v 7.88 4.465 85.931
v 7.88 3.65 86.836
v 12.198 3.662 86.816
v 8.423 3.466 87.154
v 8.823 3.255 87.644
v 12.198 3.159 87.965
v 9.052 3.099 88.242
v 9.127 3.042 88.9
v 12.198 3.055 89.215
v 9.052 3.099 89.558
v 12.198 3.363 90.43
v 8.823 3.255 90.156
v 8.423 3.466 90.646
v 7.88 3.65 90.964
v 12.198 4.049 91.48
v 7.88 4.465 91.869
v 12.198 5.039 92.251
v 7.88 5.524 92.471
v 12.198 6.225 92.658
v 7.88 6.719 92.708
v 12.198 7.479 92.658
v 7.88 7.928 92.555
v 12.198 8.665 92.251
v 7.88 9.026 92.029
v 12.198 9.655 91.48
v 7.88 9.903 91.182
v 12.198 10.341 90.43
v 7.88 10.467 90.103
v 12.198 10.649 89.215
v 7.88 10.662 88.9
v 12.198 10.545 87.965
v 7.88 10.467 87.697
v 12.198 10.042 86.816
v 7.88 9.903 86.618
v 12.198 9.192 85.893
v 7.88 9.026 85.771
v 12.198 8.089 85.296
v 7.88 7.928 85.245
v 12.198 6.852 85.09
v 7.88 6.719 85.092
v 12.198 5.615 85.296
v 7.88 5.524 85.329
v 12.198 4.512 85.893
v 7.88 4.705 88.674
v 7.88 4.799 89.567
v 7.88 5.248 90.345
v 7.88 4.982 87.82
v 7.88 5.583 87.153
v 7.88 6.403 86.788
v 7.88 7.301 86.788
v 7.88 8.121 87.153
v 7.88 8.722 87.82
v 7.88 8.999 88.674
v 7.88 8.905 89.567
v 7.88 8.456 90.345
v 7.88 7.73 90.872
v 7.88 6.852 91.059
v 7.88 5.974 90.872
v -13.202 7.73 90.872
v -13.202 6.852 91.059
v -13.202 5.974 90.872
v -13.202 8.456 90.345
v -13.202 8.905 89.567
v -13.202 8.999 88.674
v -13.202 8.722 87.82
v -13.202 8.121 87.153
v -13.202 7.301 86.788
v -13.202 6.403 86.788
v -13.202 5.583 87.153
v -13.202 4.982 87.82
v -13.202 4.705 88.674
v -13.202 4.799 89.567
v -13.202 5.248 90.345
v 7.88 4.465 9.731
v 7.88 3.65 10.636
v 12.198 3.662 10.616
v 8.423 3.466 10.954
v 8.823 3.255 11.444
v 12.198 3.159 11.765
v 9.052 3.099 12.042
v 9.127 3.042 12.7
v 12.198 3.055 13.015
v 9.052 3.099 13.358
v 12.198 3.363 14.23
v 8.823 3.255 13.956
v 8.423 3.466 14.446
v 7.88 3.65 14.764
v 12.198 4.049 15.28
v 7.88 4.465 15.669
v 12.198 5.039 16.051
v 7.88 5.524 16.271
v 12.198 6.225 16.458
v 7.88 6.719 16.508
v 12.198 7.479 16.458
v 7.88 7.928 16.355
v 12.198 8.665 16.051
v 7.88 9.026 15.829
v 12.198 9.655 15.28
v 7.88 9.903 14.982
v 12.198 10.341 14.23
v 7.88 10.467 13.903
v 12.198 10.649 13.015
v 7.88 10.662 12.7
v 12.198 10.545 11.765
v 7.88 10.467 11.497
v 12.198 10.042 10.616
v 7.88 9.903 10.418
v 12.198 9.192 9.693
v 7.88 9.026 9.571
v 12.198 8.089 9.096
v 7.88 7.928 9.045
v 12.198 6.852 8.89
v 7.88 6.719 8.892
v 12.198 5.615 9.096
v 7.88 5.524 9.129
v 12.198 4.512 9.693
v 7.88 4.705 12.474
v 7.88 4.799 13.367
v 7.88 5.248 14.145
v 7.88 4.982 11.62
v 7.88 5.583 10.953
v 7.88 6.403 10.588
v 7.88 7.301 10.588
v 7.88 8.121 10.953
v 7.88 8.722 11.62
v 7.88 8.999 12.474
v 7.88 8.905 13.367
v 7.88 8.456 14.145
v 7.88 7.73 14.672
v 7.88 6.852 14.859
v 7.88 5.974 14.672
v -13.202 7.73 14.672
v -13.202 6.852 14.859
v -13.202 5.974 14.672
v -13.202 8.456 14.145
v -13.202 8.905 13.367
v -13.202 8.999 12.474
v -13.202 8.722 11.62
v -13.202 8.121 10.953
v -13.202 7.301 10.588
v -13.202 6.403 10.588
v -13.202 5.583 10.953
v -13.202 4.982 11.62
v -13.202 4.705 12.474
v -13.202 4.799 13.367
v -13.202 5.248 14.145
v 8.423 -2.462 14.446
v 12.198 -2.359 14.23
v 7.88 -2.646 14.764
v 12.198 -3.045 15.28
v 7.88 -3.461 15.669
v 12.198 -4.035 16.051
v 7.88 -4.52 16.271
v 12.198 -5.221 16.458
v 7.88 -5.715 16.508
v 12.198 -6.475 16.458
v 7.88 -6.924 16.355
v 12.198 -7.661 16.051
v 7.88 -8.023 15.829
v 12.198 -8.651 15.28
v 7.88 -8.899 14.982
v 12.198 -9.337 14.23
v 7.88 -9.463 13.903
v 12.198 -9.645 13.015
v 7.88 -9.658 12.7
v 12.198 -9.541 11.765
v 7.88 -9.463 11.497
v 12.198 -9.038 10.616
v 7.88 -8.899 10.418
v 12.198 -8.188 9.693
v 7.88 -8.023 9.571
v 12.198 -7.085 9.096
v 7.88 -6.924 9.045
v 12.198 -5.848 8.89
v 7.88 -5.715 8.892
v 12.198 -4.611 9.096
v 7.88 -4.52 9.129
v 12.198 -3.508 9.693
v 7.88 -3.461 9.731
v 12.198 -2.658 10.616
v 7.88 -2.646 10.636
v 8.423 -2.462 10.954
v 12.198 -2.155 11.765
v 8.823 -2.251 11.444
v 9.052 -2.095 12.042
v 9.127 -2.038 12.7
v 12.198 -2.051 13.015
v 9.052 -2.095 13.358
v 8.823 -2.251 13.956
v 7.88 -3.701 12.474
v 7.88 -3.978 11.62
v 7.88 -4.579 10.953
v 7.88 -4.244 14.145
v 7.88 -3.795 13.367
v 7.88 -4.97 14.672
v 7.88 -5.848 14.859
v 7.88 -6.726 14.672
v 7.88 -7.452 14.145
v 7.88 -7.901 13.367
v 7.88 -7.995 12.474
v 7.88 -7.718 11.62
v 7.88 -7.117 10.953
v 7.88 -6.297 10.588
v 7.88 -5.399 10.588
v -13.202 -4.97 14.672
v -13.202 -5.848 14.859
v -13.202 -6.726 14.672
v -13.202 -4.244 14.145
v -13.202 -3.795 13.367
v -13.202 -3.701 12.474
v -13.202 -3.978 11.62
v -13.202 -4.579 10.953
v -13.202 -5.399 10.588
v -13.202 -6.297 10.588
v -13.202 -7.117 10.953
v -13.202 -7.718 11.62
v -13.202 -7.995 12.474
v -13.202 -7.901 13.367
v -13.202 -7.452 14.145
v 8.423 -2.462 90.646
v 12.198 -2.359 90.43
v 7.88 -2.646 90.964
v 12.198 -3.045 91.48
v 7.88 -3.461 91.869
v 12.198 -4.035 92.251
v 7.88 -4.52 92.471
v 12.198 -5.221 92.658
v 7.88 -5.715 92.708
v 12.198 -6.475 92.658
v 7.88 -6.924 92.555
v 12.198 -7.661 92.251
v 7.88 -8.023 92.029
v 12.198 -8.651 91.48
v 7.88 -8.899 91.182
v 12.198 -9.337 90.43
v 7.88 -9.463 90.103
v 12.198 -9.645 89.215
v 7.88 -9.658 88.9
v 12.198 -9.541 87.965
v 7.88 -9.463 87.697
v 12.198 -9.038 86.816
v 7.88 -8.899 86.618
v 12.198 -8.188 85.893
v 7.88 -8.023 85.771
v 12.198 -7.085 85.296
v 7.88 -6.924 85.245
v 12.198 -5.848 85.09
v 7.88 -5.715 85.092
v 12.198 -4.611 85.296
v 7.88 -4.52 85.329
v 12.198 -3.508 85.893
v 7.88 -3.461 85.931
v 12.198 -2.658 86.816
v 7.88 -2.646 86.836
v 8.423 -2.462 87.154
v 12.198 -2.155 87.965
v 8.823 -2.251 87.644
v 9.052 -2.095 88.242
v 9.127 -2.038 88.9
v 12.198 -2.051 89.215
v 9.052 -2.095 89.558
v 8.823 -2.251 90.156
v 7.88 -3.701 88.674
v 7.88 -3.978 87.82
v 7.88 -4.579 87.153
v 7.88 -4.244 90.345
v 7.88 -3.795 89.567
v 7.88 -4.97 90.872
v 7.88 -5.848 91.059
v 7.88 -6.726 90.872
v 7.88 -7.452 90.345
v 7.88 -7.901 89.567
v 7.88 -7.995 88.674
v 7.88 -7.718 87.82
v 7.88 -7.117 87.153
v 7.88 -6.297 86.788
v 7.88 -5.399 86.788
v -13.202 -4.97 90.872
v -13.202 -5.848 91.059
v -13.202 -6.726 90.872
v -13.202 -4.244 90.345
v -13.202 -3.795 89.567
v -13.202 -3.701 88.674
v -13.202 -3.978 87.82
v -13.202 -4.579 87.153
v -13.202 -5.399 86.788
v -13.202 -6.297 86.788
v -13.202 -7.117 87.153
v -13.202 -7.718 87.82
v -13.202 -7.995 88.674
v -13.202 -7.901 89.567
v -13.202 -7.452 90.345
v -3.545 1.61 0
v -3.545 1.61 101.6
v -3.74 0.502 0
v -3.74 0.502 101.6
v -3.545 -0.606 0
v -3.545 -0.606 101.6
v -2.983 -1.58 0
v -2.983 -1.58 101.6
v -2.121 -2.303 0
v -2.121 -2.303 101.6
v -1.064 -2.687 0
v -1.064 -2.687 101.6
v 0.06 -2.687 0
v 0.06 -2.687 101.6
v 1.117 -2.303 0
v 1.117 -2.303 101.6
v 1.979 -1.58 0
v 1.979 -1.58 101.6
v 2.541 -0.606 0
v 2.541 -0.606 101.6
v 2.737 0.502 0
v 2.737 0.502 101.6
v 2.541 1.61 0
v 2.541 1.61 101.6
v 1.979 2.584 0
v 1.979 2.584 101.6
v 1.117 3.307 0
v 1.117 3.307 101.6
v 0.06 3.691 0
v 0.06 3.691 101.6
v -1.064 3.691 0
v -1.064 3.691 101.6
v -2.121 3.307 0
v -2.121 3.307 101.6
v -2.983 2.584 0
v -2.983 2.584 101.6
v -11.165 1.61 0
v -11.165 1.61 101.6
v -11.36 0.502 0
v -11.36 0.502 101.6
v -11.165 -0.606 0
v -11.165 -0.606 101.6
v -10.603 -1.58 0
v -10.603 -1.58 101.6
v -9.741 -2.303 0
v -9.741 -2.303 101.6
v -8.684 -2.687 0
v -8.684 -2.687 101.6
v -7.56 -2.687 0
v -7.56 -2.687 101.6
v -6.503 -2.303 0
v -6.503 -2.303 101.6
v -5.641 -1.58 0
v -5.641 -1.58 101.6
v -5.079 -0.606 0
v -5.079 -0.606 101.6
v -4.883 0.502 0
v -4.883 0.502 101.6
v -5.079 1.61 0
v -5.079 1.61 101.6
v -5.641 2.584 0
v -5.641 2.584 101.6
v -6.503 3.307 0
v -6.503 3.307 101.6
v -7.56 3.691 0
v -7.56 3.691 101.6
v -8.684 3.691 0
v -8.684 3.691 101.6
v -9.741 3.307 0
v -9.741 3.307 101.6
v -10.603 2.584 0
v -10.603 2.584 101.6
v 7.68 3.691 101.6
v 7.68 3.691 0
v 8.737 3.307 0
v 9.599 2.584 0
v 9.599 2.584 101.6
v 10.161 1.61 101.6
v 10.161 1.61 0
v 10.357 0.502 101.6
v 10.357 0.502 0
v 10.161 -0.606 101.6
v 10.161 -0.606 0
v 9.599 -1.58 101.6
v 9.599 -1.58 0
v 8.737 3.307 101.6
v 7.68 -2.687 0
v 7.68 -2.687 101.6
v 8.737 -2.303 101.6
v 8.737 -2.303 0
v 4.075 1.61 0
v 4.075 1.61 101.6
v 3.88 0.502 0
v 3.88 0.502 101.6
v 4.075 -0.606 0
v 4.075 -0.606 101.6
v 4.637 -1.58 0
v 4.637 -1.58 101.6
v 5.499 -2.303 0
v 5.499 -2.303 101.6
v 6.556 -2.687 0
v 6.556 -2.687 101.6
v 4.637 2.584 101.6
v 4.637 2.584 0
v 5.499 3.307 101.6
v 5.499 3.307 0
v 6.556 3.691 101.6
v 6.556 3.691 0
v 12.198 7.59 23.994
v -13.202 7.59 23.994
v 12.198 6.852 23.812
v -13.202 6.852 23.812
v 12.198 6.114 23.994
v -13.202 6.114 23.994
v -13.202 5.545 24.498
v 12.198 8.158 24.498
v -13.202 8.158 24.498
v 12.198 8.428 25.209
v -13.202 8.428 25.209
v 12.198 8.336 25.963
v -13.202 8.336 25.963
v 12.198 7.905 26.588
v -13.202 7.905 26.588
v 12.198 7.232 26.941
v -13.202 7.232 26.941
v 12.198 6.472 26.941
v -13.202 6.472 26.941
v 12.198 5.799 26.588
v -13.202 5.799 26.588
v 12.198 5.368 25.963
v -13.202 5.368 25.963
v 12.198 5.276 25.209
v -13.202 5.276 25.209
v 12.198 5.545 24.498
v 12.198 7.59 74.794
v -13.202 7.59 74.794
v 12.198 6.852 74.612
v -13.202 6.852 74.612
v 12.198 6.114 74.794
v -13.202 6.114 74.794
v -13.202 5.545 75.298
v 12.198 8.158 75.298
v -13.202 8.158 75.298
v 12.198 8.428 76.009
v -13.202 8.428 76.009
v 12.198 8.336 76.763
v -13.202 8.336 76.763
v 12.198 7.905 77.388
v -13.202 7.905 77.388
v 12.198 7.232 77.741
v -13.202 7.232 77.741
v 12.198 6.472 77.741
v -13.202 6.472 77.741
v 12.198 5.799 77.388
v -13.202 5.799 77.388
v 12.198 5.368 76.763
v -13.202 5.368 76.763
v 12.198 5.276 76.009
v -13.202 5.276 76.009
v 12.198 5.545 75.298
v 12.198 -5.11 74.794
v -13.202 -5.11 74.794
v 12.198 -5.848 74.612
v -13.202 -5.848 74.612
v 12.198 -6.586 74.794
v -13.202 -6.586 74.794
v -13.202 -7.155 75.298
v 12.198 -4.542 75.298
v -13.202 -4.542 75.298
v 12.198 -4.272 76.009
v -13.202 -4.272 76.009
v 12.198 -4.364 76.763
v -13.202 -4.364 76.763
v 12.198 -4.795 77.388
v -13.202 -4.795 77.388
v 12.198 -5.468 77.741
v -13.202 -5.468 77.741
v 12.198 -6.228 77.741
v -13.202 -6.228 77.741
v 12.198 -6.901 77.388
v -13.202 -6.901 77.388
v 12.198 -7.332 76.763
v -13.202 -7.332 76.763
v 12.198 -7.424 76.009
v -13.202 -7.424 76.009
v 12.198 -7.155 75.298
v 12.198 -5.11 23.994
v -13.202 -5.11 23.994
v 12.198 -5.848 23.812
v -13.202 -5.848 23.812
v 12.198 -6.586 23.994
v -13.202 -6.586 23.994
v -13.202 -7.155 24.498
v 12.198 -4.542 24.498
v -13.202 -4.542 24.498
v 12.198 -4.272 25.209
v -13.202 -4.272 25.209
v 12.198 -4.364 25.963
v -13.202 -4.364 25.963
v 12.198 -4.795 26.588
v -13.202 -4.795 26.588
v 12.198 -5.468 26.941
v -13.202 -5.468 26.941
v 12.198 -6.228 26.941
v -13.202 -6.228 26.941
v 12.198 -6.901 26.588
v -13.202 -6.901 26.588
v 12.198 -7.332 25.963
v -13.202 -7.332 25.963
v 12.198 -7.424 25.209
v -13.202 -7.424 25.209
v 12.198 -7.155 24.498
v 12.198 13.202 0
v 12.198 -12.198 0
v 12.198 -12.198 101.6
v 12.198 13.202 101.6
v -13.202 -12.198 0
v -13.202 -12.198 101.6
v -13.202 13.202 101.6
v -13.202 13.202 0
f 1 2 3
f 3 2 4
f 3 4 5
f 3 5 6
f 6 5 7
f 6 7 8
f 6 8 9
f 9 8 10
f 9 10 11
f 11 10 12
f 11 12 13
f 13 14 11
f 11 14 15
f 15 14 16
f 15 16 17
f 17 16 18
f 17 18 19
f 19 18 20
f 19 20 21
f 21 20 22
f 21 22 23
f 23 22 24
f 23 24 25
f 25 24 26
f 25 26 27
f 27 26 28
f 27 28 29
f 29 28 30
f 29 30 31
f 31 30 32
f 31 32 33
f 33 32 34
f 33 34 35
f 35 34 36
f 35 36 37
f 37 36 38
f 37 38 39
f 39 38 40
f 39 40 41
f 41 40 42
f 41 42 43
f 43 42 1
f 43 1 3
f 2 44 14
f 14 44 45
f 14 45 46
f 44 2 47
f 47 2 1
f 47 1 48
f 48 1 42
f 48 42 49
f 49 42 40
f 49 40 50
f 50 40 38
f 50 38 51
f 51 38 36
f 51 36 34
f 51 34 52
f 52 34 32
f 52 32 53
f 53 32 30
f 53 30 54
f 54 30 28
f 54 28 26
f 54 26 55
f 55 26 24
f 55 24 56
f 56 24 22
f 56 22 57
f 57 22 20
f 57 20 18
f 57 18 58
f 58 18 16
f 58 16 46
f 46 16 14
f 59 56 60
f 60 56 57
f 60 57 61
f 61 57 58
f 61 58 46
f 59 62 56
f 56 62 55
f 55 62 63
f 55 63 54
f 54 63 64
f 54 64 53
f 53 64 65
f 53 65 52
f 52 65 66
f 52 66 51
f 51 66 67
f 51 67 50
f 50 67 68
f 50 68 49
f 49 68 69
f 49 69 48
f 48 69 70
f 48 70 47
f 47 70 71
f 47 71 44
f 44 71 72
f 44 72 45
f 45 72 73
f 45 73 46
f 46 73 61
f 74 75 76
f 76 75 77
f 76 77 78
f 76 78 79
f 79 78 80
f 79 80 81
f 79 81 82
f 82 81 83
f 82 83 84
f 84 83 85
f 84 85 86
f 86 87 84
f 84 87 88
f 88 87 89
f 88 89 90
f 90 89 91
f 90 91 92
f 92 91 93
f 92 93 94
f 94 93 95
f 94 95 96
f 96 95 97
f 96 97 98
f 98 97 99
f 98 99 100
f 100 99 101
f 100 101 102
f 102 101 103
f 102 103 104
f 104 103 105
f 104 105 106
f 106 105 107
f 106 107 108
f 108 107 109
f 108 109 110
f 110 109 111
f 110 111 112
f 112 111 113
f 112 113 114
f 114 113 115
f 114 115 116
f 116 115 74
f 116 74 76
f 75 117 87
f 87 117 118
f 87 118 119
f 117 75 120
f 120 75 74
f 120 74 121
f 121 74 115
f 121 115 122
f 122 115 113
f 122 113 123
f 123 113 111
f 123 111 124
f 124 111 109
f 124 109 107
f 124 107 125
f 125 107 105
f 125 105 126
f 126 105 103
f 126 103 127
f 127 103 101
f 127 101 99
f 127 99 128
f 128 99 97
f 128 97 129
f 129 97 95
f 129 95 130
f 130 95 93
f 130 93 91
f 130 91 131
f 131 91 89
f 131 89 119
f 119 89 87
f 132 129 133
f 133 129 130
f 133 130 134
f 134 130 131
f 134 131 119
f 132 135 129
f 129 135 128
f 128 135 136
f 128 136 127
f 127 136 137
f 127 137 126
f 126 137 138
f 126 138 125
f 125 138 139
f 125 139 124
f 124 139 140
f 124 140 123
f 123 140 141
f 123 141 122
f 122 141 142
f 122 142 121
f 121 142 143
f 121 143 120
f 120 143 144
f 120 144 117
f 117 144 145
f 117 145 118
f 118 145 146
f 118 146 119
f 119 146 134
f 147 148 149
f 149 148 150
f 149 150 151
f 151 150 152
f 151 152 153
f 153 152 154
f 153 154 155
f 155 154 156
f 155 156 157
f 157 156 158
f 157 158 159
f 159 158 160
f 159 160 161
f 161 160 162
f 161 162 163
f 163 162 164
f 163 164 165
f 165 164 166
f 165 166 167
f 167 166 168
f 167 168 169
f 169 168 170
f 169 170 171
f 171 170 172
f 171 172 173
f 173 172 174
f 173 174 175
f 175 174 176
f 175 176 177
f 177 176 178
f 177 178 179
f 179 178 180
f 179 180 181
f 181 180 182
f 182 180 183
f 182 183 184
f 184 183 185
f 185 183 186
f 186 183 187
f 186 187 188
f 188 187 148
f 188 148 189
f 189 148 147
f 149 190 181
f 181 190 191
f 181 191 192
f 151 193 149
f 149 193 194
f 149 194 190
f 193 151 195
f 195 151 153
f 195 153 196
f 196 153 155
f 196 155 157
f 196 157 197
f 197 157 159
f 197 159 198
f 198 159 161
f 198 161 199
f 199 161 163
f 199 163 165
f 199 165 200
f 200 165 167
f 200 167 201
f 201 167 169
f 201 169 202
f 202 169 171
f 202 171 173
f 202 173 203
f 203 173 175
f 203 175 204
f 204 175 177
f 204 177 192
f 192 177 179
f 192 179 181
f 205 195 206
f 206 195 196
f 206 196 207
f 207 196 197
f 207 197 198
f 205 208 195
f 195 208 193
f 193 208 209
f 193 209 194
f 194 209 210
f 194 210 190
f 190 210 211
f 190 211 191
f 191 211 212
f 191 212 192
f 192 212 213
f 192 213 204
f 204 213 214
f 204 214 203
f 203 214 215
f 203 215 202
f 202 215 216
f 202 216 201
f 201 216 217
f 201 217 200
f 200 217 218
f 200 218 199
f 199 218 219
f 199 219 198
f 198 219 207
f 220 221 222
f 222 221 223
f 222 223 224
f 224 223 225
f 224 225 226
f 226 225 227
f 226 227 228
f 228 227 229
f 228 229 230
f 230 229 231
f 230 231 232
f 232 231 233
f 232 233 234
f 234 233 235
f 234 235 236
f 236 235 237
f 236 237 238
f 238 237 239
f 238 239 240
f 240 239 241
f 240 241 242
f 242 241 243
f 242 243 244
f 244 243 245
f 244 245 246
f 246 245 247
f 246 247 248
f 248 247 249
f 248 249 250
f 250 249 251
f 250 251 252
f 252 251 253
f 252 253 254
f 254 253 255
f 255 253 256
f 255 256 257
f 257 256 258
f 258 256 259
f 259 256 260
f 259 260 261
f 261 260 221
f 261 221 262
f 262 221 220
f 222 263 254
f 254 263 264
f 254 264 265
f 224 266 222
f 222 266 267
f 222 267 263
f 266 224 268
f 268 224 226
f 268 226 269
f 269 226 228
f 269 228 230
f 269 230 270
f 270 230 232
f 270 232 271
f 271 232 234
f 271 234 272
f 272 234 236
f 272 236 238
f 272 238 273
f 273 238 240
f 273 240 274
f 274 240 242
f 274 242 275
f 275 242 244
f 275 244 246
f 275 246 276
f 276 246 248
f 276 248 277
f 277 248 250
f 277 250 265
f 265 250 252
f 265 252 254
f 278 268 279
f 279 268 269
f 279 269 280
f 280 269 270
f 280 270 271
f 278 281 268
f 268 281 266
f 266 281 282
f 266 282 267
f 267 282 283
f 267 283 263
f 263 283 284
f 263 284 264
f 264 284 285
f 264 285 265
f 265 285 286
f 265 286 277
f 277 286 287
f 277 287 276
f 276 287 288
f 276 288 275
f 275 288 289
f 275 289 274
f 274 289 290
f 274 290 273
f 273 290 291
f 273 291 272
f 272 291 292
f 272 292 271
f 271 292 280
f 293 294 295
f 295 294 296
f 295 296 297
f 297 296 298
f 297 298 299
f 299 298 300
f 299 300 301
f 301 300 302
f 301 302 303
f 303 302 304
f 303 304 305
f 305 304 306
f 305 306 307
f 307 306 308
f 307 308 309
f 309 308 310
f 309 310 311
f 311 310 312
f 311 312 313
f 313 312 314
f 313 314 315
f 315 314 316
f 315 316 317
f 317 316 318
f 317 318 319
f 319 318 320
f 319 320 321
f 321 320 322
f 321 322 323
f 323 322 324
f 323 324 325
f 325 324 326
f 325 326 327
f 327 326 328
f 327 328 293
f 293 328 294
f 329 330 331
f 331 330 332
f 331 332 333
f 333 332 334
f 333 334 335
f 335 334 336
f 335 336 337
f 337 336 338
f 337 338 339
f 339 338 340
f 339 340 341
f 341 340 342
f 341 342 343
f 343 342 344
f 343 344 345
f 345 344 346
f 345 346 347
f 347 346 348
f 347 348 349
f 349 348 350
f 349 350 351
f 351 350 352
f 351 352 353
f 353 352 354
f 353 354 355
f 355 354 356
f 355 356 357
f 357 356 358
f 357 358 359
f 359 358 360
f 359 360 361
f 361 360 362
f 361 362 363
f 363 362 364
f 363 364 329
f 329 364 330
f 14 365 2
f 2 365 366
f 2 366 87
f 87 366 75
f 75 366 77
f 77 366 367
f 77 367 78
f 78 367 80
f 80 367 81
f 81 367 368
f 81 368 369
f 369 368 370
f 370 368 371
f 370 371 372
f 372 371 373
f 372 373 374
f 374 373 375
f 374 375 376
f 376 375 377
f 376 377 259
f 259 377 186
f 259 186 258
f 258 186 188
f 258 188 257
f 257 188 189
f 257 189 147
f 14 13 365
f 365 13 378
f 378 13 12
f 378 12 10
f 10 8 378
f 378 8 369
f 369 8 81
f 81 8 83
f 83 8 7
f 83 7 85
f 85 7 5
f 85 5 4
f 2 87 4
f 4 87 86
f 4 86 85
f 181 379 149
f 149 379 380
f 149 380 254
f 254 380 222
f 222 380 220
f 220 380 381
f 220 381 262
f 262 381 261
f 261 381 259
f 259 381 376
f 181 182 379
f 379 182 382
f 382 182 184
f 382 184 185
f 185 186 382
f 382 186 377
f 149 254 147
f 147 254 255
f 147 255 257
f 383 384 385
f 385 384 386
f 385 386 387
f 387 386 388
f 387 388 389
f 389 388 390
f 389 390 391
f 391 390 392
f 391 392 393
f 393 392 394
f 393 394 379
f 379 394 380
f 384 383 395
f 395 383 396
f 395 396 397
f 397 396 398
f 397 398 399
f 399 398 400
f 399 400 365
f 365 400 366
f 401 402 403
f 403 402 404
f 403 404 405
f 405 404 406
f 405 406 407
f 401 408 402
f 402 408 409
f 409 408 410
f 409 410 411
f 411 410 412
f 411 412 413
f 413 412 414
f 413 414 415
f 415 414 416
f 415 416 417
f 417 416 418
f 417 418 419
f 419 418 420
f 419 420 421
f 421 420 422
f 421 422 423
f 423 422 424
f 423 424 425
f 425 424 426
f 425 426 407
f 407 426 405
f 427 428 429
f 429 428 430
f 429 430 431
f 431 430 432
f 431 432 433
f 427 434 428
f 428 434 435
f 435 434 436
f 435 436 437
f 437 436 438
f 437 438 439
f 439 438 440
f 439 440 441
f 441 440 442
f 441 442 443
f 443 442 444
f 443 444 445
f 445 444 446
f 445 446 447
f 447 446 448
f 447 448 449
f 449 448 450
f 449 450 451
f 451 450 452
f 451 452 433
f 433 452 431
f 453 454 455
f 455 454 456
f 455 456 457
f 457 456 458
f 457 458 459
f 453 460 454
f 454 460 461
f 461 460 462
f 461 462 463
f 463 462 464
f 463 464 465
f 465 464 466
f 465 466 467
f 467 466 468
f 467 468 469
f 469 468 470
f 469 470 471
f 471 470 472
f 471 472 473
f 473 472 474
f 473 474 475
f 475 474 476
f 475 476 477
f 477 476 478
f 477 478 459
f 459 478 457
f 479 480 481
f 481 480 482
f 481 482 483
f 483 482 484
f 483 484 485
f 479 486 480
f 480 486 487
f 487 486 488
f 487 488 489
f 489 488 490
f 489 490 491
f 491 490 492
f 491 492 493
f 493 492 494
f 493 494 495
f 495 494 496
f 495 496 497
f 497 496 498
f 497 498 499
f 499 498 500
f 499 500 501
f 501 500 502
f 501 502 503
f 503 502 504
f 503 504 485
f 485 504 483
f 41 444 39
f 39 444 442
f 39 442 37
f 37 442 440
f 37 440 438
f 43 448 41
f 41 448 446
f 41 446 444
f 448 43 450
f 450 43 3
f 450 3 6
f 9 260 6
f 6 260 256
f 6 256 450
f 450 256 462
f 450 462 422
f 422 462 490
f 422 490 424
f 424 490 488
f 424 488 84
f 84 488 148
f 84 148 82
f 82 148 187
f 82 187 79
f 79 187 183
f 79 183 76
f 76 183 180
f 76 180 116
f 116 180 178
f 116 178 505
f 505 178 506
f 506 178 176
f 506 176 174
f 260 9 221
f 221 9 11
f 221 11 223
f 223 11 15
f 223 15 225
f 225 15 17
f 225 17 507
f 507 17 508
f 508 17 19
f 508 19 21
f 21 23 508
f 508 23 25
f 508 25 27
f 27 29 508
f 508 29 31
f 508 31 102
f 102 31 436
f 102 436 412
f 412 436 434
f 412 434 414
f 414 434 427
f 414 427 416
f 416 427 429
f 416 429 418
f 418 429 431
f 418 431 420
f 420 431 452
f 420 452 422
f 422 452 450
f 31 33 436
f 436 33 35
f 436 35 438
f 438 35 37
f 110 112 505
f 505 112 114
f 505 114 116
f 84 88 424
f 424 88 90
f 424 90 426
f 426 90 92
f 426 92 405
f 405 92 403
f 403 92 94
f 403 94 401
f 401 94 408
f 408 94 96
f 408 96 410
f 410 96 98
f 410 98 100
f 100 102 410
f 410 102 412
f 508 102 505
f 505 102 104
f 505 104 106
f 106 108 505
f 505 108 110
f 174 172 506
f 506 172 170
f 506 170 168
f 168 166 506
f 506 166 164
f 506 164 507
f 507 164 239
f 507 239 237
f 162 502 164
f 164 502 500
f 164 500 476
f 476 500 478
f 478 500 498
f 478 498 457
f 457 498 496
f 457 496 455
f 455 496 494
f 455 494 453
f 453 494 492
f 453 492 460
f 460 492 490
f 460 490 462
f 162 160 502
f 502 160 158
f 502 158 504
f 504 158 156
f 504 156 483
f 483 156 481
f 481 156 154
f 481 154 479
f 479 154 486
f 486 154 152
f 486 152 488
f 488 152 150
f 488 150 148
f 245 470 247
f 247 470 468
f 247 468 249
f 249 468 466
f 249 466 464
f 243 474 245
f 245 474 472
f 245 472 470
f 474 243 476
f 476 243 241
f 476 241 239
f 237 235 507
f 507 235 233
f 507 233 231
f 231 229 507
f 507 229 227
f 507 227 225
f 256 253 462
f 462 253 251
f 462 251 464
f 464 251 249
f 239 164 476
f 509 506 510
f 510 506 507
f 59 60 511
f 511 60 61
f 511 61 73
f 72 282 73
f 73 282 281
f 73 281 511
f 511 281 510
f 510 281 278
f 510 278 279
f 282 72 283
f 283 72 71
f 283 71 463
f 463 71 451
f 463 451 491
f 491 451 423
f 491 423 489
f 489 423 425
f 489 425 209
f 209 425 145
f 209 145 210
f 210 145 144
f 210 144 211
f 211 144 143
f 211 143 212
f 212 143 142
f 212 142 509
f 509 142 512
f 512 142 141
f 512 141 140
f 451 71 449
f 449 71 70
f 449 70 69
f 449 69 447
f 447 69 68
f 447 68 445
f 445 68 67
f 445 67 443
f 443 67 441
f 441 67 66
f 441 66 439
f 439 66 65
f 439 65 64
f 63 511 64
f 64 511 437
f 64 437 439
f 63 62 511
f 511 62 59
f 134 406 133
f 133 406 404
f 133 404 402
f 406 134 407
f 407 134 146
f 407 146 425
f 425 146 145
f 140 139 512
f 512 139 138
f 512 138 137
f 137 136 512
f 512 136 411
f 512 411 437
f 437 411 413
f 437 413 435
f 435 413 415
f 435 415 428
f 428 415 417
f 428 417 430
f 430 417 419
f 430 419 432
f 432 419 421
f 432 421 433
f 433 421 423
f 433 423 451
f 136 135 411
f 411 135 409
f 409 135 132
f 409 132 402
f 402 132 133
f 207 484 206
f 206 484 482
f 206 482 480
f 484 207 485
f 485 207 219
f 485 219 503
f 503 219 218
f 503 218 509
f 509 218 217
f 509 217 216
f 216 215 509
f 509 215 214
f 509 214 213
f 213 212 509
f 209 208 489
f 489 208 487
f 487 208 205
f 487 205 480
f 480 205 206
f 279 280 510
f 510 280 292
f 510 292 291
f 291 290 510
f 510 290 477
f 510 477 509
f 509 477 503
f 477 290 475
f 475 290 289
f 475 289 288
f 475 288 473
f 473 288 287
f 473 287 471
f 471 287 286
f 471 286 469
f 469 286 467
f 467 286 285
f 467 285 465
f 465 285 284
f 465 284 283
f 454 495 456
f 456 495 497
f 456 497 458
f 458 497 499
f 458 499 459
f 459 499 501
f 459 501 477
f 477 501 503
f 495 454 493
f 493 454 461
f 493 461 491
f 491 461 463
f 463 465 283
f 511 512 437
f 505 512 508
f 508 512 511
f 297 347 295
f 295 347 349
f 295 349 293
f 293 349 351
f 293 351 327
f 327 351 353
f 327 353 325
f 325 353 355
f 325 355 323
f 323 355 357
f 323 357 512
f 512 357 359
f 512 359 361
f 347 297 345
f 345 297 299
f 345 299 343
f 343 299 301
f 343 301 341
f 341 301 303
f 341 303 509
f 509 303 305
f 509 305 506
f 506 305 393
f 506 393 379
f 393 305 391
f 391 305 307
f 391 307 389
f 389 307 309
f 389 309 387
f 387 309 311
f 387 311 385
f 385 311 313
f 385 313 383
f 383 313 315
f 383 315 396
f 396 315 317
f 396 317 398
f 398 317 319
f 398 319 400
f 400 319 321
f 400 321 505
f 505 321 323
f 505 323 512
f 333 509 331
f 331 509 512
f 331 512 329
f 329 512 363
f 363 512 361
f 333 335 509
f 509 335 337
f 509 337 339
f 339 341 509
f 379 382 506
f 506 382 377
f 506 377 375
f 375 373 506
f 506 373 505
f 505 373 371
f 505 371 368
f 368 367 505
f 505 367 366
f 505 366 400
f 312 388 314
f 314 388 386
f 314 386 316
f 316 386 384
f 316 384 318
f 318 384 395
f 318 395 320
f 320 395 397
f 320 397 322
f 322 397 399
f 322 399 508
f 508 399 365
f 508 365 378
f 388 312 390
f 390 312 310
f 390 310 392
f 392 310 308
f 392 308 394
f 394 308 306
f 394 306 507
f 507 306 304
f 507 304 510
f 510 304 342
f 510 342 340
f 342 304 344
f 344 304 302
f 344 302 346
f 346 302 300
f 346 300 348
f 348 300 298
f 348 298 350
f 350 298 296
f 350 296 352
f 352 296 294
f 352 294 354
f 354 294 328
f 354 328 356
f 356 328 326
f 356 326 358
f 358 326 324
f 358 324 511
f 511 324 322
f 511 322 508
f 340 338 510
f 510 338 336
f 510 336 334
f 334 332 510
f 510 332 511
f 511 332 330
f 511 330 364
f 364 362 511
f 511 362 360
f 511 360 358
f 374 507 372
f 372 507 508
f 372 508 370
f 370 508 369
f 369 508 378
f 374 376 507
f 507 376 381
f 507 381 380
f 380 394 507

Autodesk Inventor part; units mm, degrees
ref_plane "YZ Plane" through (0, 0, 0) normal (1, 0, 0) x (0, 1, 0)
ref_plane "XZ Plane" through (0, 0, 0) normal (0, 1, 0) x (-1, 0, 0)
ref_plane "XY Plane" through (0, 0, 0) normal (0, 0, 1) x (1, 0, 0)
sketch "Sketch1" plane through (0, 0, 0) normal (0, 0, 1) x (1, 0, 0)
  line L0 (-13.202, 13.202) -> (12.198, 13.202)
  line L1 (12.198, 13.202) -> (12.198, -12.198)
  line L2 (12.198, -12.198) -> (-13.202, -12.198)
  line L3 (-13.202, -12.198) -> (-13.202, 13.202)
  point P0 (0, 0)
  dimension "d0" = 25.4
  dimension "d1" = 25.4
extrude "Extrusion1" add sketch "Sketch1" along normal blind 101.6
sketch "Sketch6" plane through (12.198, 13.202, 101.6) normal (1, 0, 0) x (0, 0, -1)
  line L0 (101.6, 0) -> (101.6, -25.4) projected
  line L1 (101.6, -25.4) -> (0, -25.4) projected
  line L2 (101.6, 0) -> (101.6, -25.4) projected
  line L3 (101.6, 0) -> (0, 0) projected
  line L4 (0, -25.4) -> (0, 0) projected
  line L5 (0, -25.4) -> (0, 0) projected
  point P0 (101.6, -13.202)
  point P1 (88.9, -6.35)
  point P2 (88.9, -19.05)
  point P3 (101.6, -19.05)
  point P4 (101.6, -6.35)
  point P5 (12.7, -6.35)
  point P6 (12.7, -19.05)
  point P7 (0, -19.05)
  point P8 (0, -6.35)
  dimension "d51" = 12.7
  dimension "d52" = 6.35
  dimension "d53" = 12.7
  dimension "d54" = 6.35
  dimension "d55" = 12.7
  dimension "d56" = 6.35
  dimension "d57" = 12.7
  dimension "d58" = 6.35
sketch "Sketch7" plane through (12.198, 13.202, 101.6) normal (1, 0, 0) x (0, 0, -1)
  line L0 (0, -25.4) -> (0, 0) projected
  line L1 (101.6, 0) -> (0, 0) projected
  point P0 (101.6, -13.202)
  point P1 (25.4, -6.35)
  point P2 (25.4, -19.05)
  point P3 (76.2, -6.35)
  point P4 (76.2, -19.05)
  point P5 (0, -6.35)
  dimension "d66" = 0
  dimension "d67" = 0
  dimension "d68" = 0
  dimension "d69" = 0
  dimension "d70" = 25.4
  dimension "d71" = 6.35
  dimension "d72" = 19.05
  dimension "d73" = 76.2
hole "Hole3" at (12.198, 6.852, 76.2) at (12.198, -5.848, 76.2) at (12.198, 6.852, 25.4) at (12.198, -5.848, 25.4) direction (-1, 0, 0) diameter 3.175 depth 25.4 tip angle 118.188
sketch "Sketch8" plane through (0, 0, 101.6) normal (0, 0, 1) x (1, 0, 0)
  line L0 (-13.202, 13.202) -> (-13.202, -12.198) projected
  line L1 (-13.202, -12.198) -> (12.198, -12.198) projected
  point P0 (0, 0)
  point P1 (-8.122, 0.502)
  point P2 (-0.502, 0.502)
  point P3 (7.118, 0.502)
  dimension "d81" = 0
  dimension "d82" = 5.08
  dimension "d83" = 12.7
  dimension "d84" = 12.7
  dimension "d85" = 0
  dimension "d86" = 20.32
hole "Hole4" at (-8.122, 0.502, 101.6) at (-0.502, 0.502, 101.6) at (7.118, 0.502, 101.6) direction (0, 0, -1) diameter 6.477 end through all
hole "Hole5" at (12.198, 6.852, 12.7) at (12.198, -5.848, 12.7) at (12.198, 6.852, 88.9) at (12.198, -5.848, 88.9) direction (-1, 0, 0) diameter 4.318 end through all counterbore diameter 7.62 counterbore depth 4.318
properties part number "BottomOfBackElevatorFrame"
